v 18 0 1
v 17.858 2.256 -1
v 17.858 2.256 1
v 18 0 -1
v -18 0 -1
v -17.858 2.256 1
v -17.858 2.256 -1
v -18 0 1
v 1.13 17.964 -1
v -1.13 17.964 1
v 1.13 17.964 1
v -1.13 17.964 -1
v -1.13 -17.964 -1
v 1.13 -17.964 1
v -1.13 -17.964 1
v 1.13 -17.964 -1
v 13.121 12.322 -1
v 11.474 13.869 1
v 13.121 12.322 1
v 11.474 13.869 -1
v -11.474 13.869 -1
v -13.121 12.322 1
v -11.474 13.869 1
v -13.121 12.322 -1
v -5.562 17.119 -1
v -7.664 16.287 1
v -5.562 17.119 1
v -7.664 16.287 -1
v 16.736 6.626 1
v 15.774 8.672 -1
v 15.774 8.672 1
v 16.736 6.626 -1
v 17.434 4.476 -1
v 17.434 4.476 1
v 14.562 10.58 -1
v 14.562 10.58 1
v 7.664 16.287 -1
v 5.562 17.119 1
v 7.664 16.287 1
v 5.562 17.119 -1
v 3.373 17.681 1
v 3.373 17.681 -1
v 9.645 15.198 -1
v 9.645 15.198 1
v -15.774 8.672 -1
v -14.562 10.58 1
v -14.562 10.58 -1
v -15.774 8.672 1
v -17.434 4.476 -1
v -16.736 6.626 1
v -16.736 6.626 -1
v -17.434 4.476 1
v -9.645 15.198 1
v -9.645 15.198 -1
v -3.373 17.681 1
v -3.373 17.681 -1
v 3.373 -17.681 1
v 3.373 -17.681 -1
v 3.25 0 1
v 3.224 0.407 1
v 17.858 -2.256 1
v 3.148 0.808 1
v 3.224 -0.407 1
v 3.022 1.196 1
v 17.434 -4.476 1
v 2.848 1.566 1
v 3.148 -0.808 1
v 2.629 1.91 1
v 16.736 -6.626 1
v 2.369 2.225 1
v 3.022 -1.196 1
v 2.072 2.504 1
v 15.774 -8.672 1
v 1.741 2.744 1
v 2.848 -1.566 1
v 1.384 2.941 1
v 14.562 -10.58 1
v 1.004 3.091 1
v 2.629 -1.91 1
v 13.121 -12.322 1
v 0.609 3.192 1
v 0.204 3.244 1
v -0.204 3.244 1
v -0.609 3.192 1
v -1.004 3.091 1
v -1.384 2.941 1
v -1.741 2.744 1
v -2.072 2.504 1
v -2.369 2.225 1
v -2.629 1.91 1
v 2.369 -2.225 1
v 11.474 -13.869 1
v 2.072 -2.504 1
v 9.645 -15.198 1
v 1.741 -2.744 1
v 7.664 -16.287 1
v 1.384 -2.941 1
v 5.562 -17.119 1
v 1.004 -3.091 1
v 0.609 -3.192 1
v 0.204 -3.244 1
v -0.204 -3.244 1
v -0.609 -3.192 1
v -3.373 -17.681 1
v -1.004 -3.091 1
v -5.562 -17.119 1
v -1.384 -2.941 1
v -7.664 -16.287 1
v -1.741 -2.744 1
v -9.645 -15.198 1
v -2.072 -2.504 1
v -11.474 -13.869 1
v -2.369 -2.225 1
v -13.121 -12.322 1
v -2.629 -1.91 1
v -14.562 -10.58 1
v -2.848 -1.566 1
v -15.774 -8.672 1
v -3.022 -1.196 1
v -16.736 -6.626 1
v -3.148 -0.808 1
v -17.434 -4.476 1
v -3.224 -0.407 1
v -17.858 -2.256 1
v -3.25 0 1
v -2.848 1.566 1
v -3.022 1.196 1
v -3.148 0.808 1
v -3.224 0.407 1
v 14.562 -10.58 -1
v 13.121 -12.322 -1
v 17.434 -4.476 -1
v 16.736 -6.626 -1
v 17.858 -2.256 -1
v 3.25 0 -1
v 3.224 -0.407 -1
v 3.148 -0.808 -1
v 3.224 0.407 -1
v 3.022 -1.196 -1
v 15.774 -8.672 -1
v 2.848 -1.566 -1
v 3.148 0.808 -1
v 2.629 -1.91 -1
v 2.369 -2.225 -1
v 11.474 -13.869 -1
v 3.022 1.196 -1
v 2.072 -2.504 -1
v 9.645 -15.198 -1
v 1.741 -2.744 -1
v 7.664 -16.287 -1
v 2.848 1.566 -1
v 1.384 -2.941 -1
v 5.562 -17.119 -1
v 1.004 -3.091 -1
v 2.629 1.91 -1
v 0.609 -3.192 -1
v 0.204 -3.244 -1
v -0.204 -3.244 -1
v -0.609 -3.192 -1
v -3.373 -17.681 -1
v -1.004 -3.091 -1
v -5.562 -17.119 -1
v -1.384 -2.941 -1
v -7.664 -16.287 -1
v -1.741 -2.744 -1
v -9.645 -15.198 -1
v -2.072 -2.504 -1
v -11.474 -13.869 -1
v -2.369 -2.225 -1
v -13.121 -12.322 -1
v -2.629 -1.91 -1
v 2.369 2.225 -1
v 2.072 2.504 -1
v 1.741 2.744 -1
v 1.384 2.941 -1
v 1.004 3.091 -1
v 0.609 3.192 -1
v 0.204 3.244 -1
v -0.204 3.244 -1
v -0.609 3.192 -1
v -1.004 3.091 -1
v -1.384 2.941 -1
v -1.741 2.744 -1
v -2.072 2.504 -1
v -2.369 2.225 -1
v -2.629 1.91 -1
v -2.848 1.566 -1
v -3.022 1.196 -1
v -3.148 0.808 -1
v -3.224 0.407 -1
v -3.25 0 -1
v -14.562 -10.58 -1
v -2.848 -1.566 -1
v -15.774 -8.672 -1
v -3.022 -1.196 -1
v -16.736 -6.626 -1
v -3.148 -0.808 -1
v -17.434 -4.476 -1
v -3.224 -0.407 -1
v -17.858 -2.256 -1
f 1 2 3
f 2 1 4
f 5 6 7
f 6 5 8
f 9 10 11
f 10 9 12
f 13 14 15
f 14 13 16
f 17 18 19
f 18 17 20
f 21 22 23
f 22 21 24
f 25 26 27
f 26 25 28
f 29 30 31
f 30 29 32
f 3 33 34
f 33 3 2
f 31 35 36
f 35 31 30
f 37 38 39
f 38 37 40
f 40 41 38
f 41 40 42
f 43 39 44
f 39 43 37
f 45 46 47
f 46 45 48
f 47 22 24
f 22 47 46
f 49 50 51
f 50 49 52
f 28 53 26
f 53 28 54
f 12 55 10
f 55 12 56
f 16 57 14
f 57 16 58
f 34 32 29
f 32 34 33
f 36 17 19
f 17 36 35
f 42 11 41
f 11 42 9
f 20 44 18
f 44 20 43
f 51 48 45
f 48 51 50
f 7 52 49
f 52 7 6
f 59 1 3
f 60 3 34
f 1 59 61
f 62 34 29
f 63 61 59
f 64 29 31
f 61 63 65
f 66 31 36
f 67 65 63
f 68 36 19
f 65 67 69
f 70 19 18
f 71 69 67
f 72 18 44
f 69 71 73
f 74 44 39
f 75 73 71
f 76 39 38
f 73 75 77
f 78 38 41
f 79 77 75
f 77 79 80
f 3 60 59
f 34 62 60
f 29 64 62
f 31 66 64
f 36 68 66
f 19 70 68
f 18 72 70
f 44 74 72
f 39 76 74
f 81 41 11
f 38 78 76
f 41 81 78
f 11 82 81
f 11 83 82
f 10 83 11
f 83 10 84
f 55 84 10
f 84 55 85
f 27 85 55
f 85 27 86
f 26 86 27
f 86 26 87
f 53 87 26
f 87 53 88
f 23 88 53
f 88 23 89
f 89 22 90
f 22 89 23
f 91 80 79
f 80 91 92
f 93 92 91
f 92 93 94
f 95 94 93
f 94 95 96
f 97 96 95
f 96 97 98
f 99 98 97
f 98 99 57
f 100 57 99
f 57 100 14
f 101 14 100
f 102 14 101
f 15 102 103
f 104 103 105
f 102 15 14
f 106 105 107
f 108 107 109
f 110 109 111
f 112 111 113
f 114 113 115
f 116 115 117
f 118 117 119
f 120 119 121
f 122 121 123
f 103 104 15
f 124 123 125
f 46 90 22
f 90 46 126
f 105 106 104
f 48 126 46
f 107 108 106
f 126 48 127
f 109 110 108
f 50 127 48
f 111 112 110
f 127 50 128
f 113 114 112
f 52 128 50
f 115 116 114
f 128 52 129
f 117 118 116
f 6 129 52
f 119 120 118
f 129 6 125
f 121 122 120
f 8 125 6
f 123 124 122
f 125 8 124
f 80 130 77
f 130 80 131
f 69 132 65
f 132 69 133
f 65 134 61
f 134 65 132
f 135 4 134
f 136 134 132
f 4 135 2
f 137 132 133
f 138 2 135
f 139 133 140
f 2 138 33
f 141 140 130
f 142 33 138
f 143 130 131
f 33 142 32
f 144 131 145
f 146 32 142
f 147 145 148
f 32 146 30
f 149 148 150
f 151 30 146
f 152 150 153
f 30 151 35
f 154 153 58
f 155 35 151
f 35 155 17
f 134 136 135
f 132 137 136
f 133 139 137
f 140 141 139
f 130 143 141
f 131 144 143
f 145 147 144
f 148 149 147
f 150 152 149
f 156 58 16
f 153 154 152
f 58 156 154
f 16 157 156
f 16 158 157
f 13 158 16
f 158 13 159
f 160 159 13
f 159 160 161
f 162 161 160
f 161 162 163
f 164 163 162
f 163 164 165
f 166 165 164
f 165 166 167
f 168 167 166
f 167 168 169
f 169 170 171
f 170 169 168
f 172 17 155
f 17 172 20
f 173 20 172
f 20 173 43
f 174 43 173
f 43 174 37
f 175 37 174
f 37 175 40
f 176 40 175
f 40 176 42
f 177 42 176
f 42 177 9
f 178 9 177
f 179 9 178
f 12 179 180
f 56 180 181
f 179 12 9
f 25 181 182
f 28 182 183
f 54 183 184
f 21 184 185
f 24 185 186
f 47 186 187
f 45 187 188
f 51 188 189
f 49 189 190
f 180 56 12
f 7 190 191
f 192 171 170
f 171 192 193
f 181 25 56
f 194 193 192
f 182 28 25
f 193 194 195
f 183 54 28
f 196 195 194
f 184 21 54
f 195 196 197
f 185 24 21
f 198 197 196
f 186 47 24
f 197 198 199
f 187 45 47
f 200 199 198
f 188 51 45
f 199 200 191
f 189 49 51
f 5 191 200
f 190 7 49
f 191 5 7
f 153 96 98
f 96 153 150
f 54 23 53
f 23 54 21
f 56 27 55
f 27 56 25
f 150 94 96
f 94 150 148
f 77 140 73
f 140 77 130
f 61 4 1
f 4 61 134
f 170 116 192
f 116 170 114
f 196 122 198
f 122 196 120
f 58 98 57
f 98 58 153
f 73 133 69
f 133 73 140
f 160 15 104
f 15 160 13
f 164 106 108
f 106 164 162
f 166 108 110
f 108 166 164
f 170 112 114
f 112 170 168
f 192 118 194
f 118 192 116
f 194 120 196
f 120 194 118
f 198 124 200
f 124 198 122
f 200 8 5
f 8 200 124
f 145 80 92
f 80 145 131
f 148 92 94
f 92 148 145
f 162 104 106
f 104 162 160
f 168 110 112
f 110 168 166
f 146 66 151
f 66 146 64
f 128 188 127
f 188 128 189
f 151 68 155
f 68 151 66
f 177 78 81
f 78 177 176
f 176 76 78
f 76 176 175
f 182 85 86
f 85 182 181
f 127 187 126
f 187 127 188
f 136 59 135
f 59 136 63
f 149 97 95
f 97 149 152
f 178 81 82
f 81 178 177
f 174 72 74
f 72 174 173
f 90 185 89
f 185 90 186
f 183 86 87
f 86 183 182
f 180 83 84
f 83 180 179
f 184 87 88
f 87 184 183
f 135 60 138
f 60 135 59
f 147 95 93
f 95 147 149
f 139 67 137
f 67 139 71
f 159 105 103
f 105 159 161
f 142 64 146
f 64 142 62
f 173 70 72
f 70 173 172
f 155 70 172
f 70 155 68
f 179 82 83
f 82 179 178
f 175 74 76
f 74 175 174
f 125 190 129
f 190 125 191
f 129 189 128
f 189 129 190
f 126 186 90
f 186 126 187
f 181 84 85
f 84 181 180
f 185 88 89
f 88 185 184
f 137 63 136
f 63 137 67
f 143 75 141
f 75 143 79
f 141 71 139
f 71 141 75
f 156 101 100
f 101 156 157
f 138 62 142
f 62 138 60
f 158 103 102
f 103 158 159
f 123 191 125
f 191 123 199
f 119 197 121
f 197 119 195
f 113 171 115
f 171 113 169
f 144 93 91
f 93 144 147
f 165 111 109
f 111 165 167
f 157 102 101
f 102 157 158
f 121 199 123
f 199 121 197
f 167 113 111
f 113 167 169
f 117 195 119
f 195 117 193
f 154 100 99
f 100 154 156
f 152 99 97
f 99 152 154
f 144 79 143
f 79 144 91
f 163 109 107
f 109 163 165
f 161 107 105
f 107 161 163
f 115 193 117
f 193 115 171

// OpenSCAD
$fn = 50;


difference() {
	union() {
		translate(v = [0, 0, -1.0000000000]) {
			cylinder(h = 2, r = 18.0000000000);
		}
	}
	union() {
		translate(v = [0, 0, -100.0000000000]) {
			cylinder(h = 200, r = 3.2500000000);
		}
	}
}
